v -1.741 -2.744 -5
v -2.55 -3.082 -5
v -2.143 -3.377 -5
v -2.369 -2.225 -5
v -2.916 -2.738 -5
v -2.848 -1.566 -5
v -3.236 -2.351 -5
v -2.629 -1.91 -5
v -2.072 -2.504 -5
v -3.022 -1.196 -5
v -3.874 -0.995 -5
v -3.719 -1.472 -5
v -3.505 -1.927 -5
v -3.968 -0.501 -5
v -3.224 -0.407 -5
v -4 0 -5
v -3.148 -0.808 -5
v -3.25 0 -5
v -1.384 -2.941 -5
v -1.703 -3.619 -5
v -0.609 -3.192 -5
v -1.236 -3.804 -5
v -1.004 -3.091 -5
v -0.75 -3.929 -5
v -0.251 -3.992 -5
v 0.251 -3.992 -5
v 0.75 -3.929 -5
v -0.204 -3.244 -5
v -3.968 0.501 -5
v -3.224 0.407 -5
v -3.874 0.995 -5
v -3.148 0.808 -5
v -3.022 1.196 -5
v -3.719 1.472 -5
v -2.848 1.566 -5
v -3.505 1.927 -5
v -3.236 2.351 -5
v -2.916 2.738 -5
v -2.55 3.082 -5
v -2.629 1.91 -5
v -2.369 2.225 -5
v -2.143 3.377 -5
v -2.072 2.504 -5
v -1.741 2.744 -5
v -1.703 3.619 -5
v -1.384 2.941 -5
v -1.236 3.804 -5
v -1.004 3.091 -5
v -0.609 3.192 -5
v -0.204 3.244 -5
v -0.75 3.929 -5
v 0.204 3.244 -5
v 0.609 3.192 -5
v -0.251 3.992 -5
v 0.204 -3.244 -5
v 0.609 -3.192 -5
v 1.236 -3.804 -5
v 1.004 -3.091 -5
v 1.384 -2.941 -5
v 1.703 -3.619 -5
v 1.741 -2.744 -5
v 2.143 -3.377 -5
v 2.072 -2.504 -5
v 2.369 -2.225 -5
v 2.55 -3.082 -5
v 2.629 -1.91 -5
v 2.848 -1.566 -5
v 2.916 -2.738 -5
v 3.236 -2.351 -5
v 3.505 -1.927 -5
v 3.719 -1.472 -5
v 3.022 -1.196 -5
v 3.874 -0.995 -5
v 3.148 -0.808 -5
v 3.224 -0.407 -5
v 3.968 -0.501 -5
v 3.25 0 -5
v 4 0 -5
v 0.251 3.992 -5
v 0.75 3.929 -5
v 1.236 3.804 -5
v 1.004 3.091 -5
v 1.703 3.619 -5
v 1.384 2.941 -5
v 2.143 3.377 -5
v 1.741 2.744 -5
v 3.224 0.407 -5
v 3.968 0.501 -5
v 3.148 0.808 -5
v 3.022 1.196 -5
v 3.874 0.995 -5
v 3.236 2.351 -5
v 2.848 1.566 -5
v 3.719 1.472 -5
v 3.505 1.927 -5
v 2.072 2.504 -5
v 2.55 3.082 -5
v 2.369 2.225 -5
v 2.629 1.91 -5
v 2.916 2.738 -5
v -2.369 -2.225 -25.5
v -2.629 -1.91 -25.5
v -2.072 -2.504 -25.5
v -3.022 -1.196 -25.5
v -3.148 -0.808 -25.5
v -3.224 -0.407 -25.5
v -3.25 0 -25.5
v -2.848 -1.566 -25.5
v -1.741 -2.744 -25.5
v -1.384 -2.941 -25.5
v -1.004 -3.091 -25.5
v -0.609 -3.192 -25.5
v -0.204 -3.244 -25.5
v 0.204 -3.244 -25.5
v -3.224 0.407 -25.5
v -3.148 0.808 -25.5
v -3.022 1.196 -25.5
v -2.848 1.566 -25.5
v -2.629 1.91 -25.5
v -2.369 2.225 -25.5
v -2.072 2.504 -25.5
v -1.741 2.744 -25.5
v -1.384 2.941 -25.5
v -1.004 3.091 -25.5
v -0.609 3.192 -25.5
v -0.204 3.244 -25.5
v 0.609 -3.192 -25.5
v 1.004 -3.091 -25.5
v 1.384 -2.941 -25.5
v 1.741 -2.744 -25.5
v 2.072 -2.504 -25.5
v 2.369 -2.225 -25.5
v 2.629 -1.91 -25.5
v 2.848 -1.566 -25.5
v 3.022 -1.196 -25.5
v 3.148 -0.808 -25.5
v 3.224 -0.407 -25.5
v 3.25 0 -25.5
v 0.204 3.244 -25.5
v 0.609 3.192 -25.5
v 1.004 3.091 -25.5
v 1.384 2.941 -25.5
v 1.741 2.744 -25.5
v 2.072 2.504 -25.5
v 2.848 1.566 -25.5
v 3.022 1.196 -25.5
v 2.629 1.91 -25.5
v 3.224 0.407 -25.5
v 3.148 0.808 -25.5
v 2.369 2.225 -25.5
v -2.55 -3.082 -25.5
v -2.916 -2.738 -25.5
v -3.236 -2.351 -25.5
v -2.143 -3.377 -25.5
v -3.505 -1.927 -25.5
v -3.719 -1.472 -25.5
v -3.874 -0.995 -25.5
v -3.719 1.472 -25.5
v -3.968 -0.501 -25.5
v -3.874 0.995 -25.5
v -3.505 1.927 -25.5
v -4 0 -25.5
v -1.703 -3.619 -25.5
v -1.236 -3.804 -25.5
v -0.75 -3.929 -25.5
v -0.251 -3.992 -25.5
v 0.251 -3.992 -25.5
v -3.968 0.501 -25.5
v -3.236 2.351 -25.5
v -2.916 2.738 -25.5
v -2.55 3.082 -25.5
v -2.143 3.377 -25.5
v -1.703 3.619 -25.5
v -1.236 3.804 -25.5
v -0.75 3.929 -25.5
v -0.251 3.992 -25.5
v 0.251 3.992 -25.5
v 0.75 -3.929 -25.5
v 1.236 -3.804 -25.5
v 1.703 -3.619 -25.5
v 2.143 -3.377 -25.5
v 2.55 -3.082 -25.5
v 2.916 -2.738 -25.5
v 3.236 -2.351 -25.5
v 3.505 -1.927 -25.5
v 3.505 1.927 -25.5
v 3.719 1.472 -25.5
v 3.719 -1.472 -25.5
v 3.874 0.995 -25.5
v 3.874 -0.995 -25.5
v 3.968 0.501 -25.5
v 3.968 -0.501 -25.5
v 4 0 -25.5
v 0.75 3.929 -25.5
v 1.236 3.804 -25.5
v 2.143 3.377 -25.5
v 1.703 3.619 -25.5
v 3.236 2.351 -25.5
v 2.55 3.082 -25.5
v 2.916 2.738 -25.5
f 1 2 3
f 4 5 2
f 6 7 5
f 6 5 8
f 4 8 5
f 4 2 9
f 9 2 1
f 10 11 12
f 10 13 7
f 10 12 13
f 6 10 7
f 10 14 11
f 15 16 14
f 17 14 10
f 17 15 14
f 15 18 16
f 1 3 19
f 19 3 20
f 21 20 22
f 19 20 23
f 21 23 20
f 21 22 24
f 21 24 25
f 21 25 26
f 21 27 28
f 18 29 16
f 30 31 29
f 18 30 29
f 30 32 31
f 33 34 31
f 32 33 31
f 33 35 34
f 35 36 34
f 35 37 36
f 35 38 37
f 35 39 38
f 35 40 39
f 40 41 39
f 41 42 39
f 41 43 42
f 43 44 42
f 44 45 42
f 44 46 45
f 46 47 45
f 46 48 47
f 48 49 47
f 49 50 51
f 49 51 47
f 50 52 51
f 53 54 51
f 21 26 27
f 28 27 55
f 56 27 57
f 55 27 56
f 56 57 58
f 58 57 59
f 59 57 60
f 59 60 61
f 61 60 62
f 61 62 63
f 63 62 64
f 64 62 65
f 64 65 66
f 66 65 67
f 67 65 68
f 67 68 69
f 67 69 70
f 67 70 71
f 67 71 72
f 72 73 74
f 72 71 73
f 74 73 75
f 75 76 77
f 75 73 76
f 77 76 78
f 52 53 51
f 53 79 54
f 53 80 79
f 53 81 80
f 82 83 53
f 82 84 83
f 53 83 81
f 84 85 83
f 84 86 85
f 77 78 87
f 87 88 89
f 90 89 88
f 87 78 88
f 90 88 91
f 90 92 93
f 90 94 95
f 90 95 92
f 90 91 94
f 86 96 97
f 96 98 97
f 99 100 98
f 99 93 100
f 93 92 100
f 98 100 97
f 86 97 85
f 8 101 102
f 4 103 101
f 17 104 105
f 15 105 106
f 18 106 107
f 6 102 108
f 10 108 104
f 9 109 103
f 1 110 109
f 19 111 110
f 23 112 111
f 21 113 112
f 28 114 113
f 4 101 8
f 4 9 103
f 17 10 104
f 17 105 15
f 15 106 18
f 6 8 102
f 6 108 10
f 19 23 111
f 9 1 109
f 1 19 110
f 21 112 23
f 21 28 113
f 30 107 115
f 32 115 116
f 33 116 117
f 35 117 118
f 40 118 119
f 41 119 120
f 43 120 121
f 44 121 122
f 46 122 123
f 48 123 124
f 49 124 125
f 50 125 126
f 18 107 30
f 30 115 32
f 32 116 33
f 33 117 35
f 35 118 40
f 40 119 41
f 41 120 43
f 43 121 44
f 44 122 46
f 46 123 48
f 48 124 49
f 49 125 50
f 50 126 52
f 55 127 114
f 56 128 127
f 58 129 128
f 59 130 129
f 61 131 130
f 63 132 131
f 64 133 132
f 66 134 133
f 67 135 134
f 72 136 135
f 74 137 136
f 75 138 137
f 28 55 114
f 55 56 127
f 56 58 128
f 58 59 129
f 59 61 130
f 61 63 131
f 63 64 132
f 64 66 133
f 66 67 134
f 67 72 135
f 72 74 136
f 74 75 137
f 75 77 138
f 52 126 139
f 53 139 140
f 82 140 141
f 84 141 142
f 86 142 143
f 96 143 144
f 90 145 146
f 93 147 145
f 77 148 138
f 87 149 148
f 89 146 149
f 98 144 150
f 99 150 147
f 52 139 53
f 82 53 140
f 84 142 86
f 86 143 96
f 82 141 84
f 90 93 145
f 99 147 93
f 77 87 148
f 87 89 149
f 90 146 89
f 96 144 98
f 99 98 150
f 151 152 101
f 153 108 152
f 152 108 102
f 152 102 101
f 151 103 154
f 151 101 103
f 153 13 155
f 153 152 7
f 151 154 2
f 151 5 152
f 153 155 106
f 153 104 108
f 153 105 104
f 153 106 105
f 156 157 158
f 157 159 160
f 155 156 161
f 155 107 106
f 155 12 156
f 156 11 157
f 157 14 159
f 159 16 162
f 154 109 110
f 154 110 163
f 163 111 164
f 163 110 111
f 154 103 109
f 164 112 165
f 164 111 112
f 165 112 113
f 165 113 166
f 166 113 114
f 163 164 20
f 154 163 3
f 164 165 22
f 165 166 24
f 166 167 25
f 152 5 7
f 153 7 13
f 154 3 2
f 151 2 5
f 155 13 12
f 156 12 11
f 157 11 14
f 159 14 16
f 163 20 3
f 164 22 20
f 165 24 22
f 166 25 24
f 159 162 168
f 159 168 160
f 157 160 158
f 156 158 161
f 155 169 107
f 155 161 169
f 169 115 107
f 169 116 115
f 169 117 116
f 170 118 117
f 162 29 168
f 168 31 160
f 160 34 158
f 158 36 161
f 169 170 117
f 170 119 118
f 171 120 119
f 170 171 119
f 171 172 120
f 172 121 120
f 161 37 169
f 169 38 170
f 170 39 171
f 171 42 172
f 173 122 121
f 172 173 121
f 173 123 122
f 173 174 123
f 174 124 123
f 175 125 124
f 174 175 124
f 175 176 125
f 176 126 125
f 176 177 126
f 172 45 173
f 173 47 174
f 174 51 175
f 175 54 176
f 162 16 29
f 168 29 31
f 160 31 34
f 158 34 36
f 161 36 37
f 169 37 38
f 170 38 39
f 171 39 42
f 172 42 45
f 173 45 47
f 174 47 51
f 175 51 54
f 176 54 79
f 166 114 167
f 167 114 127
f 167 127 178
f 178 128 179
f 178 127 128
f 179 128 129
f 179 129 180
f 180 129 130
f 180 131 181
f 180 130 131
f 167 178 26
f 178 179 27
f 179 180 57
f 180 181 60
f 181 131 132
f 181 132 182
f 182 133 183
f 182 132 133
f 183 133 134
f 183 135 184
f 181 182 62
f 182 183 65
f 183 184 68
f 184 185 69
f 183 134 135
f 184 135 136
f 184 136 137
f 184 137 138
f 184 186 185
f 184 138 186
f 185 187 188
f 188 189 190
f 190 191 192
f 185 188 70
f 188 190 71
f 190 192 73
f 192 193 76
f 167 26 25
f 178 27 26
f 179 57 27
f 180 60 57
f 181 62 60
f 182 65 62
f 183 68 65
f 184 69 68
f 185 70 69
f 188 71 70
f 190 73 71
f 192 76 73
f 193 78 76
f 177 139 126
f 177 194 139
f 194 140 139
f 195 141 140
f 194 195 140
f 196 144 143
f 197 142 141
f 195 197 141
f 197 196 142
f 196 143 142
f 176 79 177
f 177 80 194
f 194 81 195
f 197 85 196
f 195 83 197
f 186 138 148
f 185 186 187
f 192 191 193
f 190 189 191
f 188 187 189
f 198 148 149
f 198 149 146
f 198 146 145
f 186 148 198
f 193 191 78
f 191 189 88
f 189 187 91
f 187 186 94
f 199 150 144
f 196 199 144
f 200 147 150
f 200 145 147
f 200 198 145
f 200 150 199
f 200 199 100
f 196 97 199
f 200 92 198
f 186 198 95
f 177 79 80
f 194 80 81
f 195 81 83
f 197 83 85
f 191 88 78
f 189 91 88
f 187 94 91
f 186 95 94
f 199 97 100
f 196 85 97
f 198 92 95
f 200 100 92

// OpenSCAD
$fn = 50;

difference() {
	union() {
		translate(v = [0, 0, -25.5]) {
			cylinder(h = 28.5, r = 4.0);
		}
	}
	union() {
		translate(v = [0, 0, 0]) {
			rotate(a = [0, 0, 0]) {
				difference() {
					union() {
						translate(v = [0, 0, -5]) {
							linear_extrude(height = 5) {
								polygon(points = [[5.914249999999999, 0.0], [2.957125, 5.1218907443321156], [-2.9571249999999982, 5.1218907443321156], [-5.914249999999999, 7.242867331857232e-16], [-2.9571250000000022, -5.121890744332115], [2.9571249999999956, -5.121890744332118]]);
							}
						}
					}
					union();
				}
			}
		}
		#cylinder(h = 3, r = 6.25);
		#translate(v = [0, 0, -100.0]) {
			cylinder(h = 200, r = 3.25);
		}
	}
}
